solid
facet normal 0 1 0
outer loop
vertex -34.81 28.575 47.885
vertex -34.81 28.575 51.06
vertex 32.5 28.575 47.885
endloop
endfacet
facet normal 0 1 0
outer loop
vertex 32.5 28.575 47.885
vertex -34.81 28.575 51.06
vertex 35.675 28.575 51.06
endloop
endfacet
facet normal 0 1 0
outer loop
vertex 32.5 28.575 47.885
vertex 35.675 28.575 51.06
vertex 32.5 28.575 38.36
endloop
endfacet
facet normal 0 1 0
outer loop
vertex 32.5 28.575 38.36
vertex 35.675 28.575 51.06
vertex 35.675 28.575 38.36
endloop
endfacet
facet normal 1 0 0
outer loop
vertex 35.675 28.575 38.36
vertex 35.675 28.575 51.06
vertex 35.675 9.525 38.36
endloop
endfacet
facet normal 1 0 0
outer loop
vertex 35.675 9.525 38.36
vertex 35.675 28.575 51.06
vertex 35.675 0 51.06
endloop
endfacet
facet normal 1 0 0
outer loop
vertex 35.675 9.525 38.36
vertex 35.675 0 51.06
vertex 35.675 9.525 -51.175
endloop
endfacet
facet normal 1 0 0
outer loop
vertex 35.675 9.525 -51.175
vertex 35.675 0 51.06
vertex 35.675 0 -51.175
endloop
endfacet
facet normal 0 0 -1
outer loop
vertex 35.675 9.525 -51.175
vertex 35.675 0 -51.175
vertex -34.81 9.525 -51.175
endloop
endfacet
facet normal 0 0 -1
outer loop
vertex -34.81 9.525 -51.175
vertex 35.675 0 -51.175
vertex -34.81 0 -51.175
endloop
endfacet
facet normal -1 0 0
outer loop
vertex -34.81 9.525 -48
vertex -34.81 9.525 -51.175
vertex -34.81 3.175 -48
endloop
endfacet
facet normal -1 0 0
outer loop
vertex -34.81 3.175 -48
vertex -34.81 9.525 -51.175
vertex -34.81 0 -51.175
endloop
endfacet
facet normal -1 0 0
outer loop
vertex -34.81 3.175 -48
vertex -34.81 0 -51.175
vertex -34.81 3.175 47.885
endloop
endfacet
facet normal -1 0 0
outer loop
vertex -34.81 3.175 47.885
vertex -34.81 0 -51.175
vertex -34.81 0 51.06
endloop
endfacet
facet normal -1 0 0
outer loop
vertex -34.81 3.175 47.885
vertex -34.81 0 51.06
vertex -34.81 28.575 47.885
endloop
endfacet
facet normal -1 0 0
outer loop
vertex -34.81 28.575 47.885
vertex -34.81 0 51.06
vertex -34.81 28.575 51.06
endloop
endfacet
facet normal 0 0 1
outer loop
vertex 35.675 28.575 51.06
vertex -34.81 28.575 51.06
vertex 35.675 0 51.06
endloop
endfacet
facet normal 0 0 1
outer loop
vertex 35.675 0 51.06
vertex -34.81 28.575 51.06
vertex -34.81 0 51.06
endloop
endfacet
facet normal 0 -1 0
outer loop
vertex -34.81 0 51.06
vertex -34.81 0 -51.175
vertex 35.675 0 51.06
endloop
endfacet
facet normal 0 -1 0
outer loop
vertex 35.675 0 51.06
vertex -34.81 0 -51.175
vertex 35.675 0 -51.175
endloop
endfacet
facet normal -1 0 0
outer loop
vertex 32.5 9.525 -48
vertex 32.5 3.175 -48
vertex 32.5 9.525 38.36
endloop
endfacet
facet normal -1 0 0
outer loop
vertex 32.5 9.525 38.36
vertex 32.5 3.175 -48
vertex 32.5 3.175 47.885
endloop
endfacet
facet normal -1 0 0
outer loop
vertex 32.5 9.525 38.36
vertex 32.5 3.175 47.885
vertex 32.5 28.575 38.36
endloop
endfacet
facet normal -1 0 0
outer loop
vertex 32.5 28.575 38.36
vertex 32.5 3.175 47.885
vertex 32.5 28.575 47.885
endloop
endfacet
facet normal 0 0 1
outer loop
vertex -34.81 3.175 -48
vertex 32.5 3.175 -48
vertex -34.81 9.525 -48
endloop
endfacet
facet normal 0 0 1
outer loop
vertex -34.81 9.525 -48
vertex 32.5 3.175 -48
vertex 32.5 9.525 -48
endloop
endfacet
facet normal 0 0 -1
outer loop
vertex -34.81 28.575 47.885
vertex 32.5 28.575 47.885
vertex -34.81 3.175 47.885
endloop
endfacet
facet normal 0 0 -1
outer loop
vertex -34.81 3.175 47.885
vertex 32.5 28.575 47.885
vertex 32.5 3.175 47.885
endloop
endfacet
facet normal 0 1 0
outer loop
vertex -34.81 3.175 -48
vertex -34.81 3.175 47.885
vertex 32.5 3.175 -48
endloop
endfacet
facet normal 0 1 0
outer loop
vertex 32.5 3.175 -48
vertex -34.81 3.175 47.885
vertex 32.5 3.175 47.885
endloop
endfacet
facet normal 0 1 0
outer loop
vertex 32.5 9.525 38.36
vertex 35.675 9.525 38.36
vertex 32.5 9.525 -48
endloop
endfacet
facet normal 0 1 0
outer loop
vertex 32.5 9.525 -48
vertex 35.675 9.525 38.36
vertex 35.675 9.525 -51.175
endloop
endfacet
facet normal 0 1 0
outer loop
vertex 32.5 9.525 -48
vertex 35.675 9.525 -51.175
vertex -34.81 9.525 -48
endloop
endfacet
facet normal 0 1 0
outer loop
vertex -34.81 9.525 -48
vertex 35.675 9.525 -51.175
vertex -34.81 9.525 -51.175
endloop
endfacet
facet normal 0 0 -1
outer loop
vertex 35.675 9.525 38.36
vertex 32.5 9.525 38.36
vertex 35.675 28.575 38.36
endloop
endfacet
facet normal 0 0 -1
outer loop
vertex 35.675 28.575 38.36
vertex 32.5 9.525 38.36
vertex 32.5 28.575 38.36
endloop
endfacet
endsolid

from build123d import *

# Parameters (mm, degrees)
SKETCH1_W           = 70.485
SKETCH1_H           = 102.235
BOSS_EXTRUDE1_DEPTH = 28.575
SHELL1_T            = -3.175
SKETCH2_W           = 89.535
SKETCH2_H           = 19.05
CUT_EXTRUDE1_DEPTH  = 3.175
SKETCH3_W           = 67.31
SKETCH3_H           = 19.05
CUT_EXTRUDE2_DEPTH  = 3.175


with BuildPart() as part:
    # Sketch1 → Boss-Extrude1 (new body)
    with BuildSketch(Plane(origin=(0, 0, 0), x_dir=(1, 0, 0), z_dir=(0, 1, 0))):
        with Locations((0.4325, 0.0575)):
            Rectangle(SKETCH1_W, SKETCH1_H)
    extrude(amount=BOSS_EXTRUDE1_DEPTH)

    # Shell1
    shell1_openings = [part.faces().sort_by_distance(p)[0] for p in [
        (0.4325, 28.575, -0.0575),
        (-34.81, 14.2875, -0.0575),
    ]]
    offset(amount=SHELL1_T, openings=shell1_openings, kind=Kind.INTERSECTION)

    # Sketch2 → Cut-Extrude1 (cut)
    with BuildSketch(Plane(origin=(35.675, 0, 0), x_dir=(0, 0, -1), z_dir=(1, 0, 0))):
        with Locations((6.4075, 19.05)):
            Rectangle(SKETCH2_W, SKETCH2_H)
    extrude(amount=-CUT_EXTRUDE1_DEPTH, mode=Mode.SUBTRACT)

    # Sketch3 → Cut-Extrude2 (cut)
    with BuildSketch(Plane(origin=(0, 0, -51.175), x_dir=(-1, 0, 0), z_dir=(0, 0, -1))):
        with Locations((1.155, 19.05)):
            Rectangle(SKETCH3_W, SKETCH3_H)
    extrude(amount=-CUT_EXTRUDE2_DEPTH, mode=Mode.SUBTRACT)


solid = part.part
